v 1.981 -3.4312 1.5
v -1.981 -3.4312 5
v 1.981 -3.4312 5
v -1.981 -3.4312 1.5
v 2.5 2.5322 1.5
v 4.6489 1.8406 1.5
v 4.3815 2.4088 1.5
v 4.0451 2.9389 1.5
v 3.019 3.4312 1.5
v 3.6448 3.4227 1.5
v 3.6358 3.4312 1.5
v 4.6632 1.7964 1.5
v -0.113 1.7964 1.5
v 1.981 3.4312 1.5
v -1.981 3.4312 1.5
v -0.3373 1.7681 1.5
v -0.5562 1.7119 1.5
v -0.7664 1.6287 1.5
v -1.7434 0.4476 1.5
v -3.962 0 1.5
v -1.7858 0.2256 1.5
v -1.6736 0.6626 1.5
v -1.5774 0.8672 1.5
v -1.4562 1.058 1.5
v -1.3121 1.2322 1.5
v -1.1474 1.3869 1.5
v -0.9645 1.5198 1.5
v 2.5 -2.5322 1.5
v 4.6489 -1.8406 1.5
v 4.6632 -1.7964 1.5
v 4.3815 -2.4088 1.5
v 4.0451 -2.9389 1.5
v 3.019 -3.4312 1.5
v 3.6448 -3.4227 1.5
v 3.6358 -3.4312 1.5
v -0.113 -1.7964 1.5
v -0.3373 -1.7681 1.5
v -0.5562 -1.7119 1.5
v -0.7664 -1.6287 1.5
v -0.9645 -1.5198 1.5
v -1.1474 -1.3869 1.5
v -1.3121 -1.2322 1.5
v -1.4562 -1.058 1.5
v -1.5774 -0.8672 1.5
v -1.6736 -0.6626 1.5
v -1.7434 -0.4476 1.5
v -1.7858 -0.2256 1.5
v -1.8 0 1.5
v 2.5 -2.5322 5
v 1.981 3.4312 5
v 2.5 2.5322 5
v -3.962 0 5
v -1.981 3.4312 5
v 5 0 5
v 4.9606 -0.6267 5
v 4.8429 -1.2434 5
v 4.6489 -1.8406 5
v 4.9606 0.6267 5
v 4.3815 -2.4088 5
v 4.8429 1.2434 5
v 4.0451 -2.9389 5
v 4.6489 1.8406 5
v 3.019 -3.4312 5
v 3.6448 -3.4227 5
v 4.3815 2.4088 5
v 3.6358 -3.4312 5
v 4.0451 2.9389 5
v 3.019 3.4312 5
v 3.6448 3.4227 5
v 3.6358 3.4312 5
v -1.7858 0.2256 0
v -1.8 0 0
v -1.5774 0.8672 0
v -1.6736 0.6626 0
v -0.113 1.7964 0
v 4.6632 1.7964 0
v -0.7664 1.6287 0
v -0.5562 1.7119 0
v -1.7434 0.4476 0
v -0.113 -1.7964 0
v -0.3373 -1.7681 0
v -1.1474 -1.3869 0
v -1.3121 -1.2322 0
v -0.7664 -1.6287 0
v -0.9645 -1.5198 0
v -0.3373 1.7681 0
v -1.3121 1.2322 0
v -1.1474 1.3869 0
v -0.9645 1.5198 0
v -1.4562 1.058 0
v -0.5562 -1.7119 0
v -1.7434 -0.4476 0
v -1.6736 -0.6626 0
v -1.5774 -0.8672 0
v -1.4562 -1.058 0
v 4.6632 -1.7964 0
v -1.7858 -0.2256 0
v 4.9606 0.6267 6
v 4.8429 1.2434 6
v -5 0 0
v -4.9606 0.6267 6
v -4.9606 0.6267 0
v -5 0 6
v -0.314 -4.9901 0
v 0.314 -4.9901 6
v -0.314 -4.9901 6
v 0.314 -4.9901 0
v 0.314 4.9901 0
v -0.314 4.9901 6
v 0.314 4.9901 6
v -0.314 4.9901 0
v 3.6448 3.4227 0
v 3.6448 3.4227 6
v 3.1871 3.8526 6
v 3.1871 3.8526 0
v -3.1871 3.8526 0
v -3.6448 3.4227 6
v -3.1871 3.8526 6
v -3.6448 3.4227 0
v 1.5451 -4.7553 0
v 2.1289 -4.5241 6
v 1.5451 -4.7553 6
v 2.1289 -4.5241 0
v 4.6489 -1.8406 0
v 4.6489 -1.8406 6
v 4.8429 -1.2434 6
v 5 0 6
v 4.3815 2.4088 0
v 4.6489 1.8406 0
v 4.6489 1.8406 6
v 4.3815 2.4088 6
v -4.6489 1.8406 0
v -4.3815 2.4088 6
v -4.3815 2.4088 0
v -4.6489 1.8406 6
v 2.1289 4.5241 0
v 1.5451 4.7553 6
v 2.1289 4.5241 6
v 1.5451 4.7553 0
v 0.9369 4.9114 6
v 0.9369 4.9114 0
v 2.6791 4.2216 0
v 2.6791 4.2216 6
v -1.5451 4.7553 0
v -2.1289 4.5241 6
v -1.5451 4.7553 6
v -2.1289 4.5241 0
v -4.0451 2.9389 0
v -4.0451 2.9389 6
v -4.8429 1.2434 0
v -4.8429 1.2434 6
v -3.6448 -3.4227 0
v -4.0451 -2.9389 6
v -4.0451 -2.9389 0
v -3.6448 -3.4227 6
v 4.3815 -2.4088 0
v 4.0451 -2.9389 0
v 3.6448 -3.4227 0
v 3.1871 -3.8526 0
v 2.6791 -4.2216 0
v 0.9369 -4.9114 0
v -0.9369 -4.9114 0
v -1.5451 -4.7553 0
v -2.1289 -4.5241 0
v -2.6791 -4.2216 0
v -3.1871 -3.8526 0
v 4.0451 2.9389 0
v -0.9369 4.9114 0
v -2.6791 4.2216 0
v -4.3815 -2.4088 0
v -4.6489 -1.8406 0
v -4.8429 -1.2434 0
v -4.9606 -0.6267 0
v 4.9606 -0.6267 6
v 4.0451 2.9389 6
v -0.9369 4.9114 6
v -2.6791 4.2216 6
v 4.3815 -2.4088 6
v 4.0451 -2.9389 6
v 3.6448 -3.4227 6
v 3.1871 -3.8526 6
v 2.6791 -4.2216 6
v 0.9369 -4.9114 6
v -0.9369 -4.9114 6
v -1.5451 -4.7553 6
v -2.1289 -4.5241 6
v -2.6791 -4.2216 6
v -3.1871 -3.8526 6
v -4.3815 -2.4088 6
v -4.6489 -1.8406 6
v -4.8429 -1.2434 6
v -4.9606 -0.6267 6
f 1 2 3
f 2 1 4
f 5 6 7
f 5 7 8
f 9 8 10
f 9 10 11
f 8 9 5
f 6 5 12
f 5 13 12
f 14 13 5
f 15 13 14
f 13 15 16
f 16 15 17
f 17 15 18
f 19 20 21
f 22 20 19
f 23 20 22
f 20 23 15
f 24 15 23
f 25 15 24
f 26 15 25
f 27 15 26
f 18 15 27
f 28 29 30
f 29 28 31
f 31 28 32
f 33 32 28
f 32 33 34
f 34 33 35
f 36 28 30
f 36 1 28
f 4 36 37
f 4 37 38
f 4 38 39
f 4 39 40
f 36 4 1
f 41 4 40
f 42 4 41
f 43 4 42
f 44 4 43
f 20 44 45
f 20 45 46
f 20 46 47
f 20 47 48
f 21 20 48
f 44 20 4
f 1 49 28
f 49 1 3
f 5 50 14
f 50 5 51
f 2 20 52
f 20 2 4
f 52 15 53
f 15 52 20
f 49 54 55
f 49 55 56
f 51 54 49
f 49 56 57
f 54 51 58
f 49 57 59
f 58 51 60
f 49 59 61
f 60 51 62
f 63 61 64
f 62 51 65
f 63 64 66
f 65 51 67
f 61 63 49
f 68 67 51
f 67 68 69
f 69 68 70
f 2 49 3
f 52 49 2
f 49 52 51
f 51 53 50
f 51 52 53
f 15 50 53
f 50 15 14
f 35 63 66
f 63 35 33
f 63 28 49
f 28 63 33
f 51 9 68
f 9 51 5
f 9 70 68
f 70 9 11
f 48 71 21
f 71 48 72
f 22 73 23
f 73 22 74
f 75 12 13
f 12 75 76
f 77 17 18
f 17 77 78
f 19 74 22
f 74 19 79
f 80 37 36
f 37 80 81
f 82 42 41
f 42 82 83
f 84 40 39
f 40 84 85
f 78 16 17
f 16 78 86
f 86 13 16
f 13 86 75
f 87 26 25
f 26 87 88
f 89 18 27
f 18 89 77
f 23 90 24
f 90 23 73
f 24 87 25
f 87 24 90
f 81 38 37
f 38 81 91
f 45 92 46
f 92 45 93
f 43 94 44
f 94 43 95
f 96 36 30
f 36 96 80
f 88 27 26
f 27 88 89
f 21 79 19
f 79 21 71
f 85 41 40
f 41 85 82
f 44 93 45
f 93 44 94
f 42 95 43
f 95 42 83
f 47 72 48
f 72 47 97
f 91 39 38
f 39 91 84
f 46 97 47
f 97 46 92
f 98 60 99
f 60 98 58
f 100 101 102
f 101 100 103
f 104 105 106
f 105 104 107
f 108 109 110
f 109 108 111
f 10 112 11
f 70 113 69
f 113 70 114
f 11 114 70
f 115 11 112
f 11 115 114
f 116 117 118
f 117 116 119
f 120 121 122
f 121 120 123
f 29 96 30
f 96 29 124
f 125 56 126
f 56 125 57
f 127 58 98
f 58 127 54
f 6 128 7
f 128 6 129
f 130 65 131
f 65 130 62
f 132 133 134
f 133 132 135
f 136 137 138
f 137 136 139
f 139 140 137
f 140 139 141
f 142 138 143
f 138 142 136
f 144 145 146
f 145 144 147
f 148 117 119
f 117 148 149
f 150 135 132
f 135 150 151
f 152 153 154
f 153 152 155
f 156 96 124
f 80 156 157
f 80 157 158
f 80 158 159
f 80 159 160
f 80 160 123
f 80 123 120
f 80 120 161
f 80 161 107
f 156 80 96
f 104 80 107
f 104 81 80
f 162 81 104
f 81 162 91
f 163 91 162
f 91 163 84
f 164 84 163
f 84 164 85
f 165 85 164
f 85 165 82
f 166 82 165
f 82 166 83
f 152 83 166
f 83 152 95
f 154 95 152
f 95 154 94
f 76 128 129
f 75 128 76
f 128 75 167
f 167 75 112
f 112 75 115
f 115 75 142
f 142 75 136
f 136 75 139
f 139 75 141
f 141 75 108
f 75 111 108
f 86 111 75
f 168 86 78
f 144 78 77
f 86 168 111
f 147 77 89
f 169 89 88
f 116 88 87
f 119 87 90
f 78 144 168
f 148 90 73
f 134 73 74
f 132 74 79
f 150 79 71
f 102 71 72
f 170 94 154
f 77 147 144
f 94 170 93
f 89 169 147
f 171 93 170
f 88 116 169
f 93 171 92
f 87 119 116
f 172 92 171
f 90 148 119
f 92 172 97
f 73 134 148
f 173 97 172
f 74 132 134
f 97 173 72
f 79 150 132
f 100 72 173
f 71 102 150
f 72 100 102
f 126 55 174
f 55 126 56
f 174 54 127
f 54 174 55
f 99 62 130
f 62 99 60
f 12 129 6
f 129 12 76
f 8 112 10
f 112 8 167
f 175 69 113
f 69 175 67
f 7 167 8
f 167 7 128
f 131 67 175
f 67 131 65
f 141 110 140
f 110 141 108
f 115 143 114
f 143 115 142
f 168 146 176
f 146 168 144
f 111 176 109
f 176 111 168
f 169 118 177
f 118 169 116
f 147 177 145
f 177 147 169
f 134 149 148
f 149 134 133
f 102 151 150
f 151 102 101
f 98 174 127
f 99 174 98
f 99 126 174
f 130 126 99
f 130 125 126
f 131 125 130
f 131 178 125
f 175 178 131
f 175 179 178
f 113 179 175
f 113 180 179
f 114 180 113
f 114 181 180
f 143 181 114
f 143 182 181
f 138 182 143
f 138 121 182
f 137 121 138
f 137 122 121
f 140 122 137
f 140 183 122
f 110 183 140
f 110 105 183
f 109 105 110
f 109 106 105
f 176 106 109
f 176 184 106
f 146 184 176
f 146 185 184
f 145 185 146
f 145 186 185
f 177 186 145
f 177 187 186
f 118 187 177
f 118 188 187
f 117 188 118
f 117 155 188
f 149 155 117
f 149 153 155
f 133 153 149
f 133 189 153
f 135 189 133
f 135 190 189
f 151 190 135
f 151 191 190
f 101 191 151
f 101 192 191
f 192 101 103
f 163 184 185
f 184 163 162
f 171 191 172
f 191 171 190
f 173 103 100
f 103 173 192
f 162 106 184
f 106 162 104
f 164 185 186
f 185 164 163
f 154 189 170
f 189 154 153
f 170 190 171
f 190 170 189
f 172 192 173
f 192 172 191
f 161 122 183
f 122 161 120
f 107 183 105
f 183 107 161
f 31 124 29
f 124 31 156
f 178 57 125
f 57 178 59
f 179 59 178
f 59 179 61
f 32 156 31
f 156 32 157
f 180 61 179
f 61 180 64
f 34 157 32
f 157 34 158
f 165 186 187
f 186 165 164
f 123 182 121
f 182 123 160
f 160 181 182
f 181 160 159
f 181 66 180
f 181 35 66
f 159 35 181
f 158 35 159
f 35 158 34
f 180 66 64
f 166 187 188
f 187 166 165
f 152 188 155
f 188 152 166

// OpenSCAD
$fn = 50;


difference() {
	union() {
		hull() {
			cylinder(h = 6, r = 5);
			cylinder(h = 6, r = 5);
			cylinder(h = 6, r = 5);
			cylinder(h = 6, r = 5);
		}
	}
	union() {
		translate(v = [0, 0, 1.5000000000]) {
			rotate(a = [0, 0, 0]) {
				difference() {
					union() {
						#linear_extrude(height = 3.5000000000) {
							polygon(points = [[3.9620000000, 0.0000000000], [1.9810000000, 3.4311926498], [-1.9810000000, 3.4311926498], [-3.9620000000, 0.0000000000], [-1.9810000000, -3.4311926498], [1.9810000000, -3.4311926498]]);
						}
					}
					union();
				}
			}
		}
		translate(v = [5, 0, 1.5000000000]) {
			rotate(a = [0, 0, 0]) {
				difference() {
					union() {
						#linear_extrude(height = 3.5000000000) {
							polygon(points = [[3.9620000000, 0.0000000000], [1.9810000000, 3.4311926498], [-1.9810000000, 3.4311926498], [-3.9620000000, 0.0000000000], [-1.9810000000, -3.4311926498], [1.9810000000, -3.4311926498]]);
						}
					}
					union();
				}
			}
		}
		translate(v = [6, 0, 1.5000000000]) {
			rotate(a = [0, 0, 0]) {
				difference() {
					union() {
						#linear_extrude(height = 3.5000000000) {
							polygon(points = [[3.9620000000, 0.0000000000], [1.9810000000, 3.4311926498], [-1.9810000000, 3.4311926498], [-3.9620000000, 0.0000000000], [-1.9810000000, -3.4311926498], [1.9810000000, -3.4311926498]]);
						}
					}
					union();
				}
			}
		}
		translate(v = [7, 0, 1.5000000000]) {
			rotate(a = [0, 0, 0]) {
				difference() {
					union() {
						#linear_extrude(height = 3.5000000000) {
							polygon(points = [[3.9620000000, 0.0000000000], [1.9810000000, 3.4311926498], [-1.9810000000, 3.4311926498], [-3.9620000000, 0.0000000000], [-1.9810000000, -3.4311926498], [1.9810000000, -3.4311926498]]);
						}
					}
					union();
				}
			}
		}
		translate(v = [5, 0, -4.5000000000]) {
			rotate(a = [0, 0, 0]) {
				difference() {
					union() {
						hull() {
							translate(v = [5.0000000000, 0, 0]) {
								cylinder(h = 6, r = 1.8000000000, r1 = 1.8000000000, r2 = 1.8000000000);
							}
							translate(v = [-5.0000000000, 0, 0]) {
								cylinder(h = 6, r = 1.8000000000, r1 = 1.8000000000, r2 = 1.8000000000);
							}
						}
					}
					union();
				}
			}
		}
	}
}
